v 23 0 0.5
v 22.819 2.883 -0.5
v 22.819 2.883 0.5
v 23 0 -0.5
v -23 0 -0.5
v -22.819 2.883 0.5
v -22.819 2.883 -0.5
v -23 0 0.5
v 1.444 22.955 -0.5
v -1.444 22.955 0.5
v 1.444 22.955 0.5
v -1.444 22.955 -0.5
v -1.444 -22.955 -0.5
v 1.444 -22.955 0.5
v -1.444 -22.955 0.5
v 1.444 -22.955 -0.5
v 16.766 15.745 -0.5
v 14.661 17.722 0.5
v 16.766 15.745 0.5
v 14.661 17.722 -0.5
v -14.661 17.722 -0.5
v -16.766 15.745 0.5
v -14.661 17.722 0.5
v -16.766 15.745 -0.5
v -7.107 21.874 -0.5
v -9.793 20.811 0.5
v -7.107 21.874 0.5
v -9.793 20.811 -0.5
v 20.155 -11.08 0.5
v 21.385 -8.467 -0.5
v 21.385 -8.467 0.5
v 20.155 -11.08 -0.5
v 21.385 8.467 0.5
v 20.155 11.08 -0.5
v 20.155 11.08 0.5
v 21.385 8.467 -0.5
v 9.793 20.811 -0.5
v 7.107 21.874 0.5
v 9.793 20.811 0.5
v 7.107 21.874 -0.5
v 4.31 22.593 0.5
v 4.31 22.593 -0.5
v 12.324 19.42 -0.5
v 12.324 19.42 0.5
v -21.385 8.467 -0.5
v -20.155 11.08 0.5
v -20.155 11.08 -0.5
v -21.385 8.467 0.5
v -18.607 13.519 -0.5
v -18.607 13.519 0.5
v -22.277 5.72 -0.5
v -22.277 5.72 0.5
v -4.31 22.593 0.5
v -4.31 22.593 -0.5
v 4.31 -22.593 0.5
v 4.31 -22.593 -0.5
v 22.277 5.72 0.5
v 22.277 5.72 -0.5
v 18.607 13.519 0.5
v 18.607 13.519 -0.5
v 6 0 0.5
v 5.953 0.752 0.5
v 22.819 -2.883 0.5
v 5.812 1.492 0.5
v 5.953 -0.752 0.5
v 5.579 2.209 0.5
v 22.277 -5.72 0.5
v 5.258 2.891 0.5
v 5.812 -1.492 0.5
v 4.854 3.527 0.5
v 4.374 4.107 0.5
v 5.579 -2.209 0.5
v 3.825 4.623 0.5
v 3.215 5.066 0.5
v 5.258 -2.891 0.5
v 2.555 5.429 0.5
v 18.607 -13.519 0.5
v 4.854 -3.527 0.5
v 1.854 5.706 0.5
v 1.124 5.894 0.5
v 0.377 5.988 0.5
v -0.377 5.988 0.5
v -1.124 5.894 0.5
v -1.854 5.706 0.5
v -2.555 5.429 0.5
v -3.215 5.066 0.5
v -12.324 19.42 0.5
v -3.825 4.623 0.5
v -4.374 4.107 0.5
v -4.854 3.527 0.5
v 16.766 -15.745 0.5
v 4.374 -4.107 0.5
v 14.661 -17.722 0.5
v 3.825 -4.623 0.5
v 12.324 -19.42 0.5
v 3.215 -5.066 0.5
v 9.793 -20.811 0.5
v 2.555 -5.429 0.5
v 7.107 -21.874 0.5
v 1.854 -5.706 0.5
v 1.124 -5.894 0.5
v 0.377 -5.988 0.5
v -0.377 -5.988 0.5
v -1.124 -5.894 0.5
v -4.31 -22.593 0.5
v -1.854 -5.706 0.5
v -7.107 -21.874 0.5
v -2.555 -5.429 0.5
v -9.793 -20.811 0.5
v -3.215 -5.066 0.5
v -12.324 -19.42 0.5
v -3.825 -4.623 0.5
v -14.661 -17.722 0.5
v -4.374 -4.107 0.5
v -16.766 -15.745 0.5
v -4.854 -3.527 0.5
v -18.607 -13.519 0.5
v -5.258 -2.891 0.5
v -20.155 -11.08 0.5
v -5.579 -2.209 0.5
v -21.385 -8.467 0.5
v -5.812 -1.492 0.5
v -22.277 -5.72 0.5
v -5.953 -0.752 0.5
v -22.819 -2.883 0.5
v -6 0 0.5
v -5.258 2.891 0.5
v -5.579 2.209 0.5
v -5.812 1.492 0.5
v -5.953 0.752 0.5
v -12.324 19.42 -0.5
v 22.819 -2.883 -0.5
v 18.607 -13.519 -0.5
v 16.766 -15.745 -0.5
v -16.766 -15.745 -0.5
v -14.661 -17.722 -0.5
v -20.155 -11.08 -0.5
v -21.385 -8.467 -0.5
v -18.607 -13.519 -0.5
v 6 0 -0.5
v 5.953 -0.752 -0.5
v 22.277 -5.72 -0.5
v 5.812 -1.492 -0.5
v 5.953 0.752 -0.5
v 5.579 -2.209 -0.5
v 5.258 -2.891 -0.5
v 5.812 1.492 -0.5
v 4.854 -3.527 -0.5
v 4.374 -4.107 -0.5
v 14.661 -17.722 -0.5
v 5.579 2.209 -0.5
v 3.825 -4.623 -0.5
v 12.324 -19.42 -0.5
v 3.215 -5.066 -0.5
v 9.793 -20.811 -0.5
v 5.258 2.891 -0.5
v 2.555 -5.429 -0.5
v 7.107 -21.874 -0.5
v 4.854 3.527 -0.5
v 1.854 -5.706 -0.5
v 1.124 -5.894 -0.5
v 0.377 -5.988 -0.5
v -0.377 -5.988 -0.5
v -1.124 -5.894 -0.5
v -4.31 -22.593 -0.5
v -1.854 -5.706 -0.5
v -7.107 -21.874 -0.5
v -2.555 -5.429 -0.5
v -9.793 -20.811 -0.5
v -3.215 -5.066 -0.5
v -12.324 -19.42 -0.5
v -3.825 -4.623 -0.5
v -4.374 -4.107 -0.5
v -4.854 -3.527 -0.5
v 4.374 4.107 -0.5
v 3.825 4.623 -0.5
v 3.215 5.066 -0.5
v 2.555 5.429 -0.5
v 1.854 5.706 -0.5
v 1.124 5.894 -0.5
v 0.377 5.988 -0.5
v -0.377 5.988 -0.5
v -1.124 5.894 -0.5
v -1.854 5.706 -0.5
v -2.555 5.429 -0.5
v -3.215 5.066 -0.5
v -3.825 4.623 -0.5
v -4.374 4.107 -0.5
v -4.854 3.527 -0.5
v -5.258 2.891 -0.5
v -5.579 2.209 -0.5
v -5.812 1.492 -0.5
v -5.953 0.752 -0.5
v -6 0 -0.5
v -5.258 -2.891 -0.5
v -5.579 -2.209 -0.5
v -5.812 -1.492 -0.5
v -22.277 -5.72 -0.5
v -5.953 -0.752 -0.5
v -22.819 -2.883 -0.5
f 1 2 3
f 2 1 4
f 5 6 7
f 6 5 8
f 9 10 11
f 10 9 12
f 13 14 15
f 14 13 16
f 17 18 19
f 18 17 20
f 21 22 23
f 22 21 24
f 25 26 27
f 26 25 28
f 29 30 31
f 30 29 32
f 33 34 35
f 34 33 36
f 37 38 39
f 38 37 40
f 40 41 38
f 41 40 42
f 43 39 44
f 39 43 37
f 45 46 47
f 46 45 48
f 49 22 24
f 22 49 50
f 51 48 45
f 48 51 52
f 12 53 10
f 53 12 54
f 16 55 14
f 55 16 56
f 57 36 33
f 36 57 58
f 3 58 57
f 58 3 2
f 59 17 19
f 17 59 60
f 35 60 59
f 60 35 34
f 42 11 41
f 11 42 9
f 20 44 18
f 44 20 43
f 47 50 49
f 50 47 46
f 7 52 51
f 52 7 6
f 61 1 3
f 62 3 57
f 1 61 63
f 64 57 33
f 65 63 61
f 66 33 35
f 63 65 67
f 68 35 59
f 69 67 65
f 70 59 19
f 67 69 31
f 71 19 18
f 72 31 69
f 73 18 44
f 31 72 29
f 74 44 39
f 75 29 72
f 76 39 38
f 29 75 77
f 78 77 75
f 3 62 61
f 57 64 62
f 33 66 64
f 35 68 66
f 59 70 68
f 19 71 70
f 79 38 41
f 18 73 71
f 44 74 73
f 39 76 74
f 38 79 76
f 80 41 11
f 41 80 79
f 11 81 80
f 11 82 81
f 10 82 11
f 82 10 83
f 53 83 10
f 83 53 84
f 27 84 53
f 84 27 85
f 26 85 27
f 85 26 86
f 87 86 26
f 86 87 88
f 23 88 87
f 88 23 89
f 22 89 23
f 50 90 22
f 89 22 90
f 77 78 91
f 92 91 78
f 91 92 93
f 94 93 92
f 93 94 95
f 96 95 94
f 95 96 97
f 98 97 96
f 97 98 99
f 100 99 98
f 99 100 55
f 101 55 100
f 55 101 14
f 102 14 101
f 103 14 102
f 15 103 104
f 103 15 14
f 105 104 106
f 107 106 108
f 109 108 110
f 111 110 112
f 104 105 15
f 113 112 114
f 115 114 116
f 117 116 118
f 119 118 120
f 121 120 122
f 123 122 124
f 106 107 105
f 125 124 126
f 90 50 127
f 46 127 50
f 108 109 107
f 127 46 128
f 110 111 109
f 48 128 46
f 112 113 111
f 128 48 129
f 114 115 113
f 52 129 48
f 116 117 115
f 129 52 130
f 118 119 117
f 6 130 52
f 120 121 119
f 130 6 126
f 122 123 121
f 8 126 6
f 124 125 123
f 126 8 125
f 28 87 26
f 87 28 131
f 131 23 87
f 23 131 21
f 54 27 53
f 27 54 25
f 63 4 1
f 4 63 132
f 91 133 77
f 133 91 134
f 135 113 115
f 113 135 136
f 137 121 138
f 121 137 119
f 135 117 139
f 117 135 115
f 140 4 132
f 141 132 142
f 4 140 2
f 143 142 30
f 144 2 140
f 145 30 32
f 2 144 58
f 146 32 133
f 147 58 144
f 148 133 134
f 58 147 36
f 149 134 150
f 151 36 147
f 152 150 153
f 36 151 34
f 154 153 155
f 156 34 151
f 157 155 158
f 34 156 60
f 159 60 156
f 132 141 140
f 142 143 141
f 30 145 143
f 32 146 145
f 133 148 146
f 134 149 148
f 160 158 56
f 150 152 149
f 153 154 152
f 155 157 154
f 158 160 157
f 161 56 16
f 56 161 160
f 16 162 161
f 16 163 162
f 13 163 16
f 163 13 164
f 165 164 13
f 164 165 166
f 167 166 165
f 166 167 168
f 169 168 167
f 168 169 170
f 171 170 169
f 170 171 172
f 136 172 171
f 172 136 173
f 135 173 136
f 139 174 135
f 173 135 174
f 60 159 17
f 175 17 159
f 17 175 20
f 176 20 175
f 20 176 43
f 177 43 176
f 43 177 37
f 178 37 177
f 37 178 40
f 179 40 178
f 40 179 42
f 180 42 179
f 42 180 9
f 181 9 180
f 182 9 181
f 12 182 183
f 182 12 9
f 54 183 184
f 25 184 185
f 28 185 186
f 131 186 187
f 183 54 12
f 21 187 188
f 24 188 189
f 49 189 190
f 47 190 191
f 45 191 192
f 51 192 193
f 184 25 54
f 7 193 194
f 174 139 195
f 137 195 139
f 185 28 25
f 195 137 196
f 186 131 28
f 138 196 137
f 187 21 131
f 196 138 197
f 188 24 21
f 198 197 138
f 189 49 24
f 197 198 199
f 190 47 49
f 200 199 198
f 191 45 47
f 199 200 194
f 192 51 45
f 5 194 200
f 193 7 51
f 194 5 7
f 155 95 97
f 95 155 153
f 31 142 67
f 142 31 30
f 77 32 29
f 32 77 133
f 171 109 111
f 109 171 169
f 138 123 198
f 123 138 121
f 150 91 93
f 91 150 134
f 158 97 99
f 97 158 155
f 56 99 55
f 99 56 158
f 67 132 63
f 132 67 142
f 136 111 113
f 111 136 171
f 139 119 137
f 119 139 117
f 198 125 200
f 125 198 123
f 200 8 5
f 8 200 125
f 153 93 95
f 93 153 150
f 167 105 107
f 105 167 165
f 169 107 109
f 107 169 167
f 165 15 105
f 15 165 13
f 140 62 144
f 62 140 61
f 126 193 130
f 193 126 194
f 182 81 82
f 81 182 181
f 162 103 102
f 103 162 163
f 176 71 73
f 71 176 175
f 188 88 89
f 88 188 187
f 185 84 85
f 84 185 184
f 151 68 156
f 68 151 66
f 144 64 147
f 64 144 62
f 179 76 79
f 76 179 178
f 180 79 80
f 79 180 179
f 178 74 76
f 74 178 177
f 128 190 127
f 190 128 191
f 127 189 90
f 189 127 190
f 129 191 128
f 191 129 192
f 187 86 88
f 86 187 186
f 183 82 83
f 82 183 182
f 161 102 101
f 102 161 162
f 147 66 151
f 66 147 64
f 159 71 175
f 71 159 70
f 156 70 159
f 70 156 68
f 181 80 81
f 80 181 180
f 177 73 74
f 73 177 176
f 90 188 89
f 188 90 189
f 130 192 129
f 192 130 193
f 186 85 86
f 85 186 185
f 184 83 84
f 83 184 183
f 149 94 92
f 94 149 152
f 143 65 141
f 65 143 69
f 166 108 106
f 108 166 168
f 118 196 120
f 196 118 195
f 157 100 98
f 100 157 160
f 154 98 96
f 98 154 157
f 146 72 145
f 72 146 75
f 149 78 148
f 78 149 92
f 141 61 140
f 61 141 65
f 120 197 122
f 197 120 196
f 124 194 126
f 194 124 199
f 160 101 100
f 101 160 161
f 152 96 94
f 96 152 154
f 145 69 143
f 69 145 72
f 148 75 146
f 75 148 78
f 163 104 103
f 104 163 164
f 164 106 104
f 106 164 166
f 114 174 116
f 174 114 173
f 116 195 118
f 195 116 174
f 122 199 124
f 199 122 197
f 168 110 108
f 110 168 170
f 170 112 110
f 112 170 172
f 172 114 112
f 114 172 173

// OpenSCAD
$fn = 50;


difference() {
	union() {
		translate(v = [0, 0, -0.5000000000]) {
			cylinder(h = 1, r = 23.0000000000);
		}
	}
	union() {
		translate(v = [0, 0, -100.0000000000]) {
			cylinder(h = 200, r = 6);
		}
	}
}
